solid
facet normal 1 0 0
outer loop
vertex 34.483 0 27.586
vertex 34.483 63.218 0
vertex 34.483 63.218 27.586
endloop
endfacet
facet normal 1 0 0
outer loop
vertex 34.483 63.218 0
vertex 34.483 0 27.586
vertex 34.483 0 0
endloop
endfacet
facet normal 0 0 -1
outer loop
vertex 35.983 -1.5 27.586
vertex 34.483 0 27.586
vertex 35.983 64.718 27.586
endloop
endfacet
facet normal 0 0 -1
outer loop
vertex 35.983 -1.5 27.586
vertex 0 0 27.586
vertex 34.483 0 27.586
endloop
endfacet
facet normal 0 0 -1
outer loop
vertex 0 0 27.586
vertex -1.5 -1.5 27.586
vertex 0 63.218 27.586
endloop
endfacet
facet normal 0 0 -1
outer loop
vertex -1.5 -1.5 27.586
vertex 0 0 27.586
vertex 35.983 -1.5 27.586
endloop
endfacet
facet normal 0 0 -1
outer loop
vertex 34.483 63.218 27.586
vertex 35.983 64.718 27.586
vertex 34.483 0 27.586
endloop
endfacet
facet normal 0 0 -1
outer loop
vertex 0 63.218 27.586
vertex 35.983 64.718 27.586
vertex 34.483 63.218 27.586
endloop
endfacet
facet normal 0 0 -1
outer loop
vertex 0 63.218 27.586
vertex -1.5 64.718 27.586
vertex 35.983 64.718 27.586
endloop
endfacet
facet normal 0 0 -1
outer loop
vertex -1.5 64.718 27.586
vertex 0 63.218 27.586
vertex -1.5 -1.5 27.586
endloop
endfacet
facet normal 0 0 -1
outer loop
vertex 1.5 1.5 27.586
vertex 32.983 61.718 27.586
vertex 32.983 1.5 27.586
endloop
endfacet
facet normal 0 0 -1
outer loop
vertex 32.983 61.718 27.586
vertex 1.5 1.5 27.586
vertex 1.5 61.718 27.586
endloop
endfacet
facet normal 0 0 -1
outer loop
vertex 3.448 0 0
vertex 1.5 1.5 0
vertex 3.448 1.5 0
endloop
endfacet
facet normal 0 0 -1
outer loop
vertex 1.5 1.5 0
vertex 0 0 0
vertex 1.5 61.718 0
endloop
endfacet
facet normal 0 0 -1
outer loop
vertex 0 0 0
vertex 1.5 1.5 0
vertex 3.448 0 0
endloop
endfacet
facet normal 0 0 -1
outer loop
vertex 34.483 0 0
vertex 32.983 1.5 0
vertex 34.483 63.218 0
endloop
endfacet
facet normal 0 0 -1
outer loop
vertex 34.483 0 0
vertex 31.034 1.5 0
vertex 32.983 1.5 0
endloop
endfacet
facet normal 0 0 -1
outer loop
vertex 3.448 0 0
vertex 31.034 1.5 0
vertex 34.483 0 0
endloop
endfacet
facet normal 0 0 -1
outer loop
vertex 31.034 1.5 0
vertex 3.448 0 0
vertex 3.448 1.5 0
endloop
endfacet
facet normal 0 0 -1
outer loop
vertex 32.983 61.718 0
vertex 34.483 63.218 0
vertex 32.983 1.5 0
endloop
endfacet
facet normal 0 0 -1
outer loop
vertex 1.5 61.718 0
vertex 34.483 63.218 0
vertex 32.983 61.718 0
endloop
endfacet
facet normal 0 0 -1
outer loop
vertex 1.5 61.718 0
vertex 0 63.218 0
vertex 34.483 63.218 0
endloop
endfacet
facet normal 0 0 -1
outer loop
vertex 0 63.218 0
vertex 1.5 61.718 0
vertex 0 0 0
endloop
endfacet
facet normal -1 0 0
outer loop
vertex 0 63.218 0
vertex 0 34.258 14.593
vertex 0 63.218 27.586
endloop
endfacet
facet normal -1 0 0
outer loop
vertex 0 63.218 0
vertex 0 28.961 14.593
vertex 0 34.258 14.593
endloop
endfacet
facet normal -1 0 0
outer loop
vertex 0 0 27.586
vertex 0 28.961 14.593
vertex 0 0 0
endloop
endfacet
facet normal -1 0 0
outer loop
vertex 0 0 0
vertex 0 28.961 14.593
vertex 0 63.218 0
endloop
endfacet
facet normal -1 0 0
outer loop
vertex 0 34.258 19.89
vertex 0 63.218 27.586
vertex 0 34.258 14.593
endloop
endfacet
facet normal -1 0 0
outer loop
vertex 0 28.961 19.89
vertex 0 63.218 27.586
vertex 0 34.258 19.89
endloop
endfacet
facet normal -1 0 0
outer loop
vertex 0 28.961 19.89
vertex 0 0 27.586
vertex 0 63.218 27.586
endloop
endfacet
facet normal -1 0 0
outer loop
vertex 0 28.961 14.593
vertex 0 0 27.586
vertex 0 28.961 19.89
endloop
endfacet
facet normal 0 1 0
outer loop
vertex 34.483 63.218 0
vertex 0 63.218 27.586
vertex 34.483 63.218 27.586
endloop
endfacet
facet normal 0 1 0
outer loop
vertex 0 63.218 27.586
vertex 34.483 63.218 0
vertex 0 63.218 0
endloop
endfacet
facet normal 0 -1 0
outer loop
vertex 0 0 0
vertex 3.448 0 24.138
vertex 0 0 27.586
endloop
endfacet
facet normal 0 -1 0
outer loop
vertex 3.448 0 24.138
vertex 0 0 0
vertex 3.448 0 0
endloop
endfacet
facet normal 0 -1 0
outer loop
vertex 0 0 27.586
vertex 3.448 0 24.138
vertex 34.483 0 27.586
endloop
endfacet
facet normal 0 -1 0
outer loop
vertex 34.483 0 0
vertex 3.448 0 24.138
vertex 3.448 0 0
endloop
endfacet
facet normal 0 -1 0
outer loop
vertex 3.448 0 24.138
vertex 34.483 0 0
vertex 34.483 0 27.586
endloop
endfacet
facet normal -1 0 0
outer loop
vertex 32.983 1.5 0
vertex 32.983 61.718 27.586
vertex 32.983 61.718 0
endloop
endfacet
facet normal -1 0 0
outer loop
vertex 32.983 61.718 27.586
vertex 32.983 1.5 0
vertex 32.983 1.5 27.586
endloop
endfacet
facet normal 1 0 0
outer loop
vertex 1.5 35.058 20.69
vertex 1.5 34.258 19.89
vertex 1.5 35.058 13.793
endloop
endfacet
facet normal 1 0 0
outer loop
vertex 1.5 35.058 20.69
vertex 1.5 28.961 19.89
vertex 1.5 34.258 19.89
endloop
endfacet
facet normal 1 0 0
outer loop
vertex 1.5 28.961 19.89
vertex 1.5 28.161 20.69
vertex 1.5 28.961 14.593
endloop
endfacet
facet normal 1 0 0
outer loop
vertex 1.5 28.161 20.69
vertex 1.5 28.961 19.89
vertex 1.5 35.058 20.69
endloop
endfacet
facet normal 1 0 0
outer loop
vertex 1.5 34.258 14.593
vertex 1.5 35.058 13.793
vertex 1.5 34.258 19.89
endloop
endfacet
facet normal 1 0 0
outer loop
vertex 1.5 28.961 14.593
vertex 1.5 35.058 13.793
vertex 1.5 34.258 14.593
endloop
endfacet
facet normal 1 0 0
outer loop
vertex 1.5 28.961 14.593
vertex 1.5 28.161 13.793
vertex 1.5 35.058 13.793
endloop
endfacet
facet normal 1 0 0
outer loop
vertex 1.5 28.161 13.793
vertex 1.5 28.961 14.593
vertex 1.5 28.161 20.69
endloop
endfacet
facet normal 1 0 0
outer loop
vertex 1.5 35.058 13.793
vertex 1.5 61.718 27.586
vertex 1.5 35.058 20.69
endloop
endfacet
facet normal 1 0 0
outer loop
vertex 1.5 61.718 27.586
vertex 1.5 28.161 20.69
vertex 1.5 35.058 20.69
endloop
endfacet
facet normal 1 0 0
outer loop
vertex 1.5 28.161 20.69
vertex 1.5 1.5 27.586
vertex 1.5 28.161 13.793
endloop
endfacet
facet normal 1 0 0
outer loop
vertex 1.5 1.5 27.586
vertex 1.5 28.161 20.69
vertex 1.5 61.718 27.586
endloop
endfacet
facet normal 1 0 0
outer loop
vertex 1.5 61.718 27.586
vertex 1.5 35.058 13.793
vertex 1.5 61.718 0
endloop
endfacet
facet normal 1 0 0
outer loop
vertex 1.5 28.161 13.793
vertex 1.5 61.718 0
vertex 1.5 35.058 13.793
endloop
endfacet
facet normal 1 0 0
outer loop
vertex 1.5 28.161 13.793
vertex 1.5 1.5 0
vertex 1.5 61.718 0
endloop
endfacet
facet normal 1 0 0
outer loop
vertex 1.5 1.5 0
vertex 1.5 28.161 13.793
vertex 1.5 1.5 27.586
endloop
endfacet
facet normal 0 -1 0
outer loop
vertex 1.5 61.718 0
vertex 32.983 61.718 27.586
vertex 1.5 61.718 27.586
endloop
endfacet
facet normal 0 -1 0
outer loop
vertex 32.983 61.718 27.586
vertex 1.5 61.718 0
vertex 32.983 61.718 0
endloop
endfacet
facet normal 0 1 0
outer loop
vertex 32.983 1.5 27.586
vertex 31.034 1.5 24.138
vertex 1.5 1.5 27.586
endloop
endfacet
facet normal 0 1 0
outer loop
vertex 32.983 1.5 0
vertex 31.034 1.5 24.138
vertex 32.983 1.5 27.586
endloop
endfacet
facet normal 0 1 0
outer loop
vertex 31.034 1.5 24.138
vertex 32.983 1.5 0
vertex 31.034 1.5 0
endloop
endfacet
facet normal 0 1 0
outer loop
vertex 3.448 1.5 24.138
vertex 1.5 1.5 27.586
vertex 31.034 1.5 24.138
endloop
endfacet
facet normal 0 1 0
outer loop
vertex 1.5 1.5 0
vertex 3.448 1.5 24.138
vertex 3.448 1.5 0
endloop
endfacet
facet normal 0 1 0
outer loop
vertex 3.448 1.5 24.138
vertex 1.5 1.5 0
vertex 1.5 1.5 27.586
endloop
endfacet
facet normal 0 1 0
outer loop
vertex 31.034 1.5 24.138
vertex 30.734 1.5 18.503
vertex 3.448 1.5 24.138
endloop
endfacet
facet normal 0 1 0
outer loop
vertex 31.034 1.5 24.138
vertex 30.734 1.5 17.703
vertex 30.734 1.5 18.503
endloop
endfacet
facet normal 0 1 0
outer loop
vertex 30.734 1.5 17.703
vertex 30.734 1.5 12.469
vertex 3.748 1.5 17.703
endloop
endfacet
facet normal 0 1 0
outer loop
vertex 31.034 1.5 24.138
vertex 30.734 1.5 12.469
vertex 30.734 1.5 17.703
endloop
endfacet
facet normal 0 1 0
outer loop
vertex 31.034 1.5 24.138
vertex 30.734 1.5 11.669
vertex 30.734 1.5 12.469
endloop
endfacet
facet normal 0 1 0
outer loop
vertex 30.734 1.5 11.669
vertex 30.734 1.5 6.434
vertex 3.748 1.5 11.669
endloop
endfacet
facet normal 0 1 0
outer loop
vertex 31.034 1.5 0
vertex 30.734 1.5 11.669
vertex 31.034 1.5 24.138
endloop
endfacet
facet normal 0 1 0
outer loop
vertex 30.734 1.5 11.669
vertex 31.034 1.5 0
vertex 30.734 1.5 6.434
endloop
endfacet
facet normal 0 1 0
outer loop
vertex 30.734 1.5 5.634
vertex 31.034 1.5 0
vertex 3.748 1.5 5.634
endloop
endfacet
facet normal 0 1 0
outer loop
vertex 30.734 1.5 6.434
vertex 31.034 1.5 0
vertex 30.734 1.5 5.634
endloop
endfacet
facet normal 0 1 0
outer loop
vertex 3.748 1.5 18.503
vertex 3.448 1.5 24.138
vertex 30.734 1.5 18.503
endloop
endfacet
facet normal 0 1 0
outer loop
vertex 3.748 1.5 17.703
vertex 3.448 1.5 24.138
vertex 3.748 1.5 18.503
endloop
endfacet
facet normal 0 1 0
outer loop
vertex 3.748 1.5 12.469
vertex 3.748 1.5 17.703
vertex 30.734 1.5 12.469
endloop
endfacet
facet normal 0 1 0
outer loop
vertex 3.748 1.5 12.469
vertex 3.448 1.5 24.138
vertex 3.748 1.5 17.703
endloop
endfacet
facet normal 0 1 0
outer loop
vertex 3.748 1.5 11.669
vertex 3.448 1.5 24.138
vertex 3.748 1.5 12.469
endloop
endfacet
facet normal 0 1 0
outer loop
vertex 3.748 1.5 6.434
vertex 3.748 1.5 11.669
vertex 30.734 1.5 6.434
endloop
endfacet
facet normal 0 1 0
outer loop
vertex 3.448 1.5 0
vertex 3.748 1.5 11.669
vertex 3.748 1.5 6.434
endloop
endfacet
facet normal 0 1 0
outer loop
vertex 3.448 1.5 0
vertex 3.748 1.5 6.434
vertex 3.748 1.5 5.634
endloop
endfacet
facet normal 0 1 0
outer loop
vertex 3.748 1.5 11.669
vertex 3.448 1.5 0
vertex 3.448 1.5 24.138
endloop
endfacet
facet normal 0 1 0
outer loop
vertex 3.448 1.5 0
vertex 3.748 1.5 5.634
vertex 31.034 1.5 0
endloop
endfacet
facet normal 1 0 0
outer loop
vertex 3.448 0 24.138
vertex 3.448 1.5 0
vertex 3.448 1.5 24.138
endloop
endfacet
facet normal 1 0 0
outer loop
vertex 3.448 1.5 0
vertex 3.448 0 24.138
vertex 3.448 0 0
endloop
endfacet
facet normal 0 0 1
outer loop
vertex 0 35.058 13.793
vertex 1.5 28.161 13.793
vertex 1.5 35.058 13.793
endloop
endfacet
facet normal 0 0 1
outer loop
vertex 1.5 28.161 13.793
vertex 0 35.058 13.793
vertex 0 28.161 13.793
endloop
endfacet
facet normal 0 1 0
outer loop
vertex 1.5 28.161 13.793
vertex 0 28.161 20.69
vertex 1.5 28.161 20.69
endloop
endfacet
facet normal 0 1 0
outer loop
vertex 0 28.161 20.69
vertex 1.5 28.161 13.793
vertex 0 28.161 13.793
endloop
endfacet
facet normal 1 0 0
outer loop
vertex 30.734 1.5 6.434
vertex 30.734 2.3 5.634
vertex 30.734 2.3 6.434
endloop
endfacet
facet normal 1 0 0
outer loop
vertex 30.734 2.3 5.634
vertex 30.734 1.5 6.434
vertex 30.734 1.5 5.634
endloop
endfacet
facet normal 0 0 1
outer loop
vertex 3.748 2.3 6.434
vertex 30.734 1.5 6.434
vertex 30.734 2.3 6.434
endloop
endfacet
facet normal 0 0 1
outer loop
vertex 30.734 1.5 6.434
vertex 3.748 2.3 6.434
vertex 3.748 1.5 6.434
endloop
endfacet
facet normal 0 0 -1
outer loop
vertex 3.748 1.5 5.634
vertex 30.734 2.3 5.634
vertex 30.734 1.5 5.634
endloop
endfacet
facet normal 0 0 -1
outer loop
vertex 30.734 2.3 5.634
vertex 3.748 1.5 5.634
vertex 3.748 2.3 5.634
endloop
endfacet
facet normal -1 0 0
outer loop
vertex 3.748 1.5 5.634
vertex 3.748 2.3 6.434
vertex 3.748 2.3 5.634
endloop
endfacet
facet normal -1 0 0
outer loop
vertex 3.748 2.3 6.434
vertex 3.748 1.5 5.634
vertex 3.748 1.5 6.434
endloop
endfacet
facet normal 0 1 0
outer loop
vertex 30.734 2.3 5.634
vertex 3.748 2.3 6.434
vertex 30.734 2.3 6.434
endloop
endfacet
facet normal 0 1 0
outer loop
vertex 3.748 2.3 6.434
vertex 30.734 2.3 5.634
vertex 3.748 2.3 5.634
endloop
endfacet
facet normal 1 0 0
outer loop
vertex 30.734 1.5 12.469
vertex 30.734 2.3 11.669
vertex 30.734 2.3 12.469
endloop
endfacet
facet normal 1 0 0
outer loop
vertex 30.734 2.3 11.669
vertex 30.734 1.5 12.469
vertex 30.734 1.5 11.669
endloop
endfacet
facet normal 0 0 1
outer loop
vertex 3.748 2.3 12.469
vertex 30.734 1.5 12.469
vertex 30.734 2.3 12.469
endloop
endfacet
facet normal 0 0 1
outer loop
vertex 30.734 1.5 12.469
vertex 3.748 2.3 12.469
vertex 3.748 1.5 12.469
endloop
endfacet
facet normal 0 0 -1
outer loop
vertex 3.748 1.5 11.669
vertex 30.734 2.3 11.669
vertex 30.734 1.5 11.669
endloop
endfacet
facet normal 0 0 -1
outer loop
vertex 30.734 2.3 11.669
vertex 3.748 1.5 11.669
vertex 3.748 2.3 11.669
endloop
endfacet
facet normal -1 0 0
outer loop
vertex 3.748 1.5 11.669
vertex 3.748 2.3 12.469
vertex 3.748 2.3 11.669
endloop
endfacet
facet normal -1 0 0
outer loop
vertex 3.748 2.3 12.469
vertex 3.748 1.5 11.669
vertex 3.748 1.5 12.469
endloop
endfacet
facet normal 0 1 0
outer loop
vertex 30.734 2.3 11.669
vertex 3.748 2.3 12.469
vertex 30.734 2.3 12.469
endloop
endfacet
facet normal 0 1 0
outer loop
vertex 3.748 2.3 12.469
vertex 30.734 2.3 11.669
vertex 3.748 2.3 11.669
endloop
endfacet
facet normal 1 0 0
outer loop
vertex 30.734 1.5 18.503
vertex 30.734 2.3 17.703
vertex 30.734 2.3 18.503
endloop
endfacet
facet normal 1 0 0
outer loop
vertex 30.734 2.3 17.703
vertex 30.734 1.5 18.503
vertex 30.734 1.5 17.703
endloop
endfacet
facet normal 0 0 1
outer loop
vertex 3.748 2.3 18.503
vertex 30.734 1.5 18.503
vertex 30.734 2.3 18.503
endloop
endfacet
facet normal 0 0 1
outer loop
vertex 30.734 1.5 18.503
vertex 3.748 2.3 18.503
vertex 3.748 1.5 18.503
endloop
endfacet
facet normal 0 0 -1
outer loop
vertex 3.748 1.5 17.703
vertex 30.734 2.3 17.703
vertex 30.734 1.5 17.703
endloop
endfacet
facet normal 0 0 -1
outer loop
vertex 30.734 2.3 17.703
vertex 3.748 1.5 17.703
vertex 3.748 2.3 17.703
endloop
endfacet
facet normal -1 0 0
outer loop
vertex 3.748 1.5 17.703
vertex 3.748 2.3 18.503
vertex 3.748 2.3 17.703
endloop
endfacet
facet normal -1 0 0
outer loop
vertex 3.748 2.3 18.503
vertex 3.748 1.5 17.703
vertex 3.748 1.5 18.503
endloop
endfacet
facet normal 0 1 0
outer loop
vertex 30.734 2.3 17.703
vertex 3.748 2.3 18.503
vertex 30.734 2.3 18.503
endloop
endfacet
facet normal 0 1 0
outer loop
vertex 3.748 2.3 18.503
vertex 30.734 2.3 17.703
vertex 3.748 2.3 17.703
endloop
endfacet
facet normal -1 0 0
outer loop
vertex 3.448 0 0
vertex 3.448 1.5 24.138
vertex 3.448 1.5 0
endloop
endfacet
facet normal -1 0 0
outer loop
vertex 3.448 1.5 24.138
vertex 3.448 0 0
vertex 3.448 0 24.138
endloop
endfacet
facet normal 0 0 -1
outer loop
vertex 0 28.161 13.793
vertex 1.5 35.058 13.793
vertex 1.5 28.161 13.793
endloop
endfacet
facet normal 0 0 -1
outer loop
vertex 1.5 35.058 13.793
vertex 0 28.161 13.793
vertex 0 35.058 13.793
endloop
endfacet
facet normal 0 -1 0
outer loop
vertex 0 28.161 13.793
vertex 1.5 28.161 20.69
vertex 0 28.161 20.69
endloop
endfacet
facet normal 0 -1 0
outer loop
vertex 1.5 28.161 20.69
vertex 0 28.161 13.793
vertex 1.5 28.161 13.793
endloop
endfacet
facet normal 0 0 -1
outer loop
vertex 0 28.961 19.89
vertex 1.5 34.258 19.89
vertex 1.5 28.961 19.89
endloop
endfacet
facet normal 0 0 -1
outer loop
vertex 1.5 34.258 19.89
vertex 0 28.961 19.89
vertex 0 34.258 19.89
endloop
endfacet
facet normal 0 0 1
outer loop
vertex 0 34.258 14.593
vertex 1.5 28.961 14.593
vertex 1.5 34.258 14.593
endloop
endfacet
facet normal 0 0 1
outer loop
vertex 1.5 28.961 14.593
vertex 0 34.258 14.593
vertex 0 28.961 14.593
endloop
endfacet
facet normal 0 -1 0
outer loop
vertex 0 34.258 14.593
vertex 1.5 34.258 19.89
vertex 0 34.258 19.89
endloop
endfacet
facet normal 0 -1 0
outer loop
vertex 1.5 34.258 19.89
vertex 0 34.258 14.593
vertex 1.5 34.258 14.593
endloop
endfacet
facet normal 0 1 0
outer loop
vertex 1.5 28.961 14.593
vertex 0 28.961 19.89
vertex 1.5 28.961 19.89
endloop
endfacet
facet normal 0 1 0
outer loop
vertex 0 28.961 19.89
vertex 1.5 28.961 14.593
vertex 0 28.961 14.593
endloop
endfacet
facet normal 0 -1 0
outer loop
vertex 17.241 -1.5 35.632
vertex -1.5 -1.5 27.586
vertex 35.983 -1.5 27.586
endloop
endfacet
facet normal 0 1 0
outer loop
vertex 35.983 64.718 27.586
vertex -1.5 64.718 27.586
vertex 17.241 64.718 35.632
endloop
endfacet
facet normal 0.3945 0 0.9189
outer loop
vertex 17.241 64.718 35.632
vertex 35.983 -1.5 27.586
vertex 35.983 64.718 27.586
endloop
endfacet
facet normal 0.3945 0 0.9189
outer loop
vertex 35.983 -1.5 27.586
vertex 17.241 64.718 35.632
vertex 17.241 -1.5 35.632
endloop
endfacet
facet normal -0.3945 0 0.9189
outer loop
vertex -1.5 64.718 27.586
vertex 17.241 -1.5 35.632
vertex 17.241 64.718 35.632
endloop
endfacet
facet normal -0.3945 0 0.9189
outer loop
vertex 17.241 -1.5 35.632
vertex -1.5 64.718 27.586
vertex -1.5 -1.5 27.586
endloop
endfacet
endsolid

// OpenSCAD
/*
 * PROMPT: Single car standalone garage in H0 scale (1:87). Gabled roof with slight
 * overhang, sectional garage door on front facade, one small window on left side wall.
 * FDM printable hollow shell, open bottom, exterior surface detail only.
 */

$fn = 32;

S = 1 / 87;  // H0 scale factor

// Building dimensions (real-world mm → H0 mm)
wall_t    = 1.5;          // wall thickness, fixed for printability

bld_w     = 3000 * S;    // exterior width   34.5 mm
bld_d     = 5500 * S;    // exterior depth   63.2 mm
bld_h     = 2400 * S;    // eave height      27.6 mm

roof_rise = 700  * S;    // gable peak rise   8.0 mm
roof_oh   = 1.5;         // roof overhang (H0 mm)

gd_w      = 2400 * S;    // garage door width    27.6 mm
gd_h      = 2100 * S;    // garage door height   24.1 mm

win_w     = 600  * S;    // side window width     6.9 mm
win_h     = 600  * S;    // side window height    6.9 mm
win_sill  = 1200 * S;    // sill height          13.8 mm

// --- modules ---

module shell() {
    difference() {
        cube([bld_w, bld_d, bld_h]);
        // hollow interior, open bottom
        translate([wall_t, wall_t, 0])
            cube([bld_w - 2*wall_t, bld_d - 2*wall_t, bld_h]);
        // garage door opening — front face (y = 0), horizontally centred
        translate([(bld_w - gd_w) / 2, -1, 0])
            cube([gd_w, wall_t + 2, gd_h]);
        // side window opening — left face (x = 0), centred in depth
        translate([-1, (bld_d - win_w) / 2, win_sill])
            cube([wall_t + 2, win_w, win_h]);
    }
}

module garage_door() {
    // Sectional door: flat fill + 3 raised horizontal rails dividing 4 panels
    sections  = 4;
    sec_h     = gd_h / sections;  // height of each panel section
    rail_h    = 0.8;              // rail height (meets min feature size)
    rail_proud = 0.8;             // how far rails protrude from door surface

    translate([(bld_w - gd_w) / 2, 0, 0]) {
        // flat door panel — fills the opening
        cube([gd_w, wall_t, gd_h]);
        // raised rails at each section boundary
        for (i = [1 : sections - 1]) {
            translate([0.3, wall_t, i * sec_h - rail_h / 2])
                cube([gd_w - 0.6, rail_proud, rail_h]);
        }
    }
}

module left_window() {
    // Window frame on left wall (x = 0 face), centred in depth
    frame_t = 0.8;  // frame border width (meets min feature size)
    translate([0, (bld_d - win_w) / 2, win_sill]) {
        difference() {
            cube([wall_t, win_w, win_h]);
            translate([-1, frame_t, frame_t])
                cube([wall_t + 2, win_w - 2*frame_t, win_h - 2*frame_t]);
        }
    }
}

module roof() {
    rw = bld_w + 2 * roof_oh;  // total roof width
    rd = bld_d + 2 * roof_oh;  // total roof depth

    translate([-roof_oh, -roof_oh, bld_h])
    polyhedron(
        points = [
            [0,    0,  0],          // 0 front-left eave
            [rw,   0,  0],          // 1 front-right eave
            [rw,   rd, 0],          // 2 back-right eave
            [0,    rd, 0],          // 3 back-left eave
            [rw/2, 0,  roof_rise],  // 4 front ridge point
            [rw/2, rd, roof_rise],  // 5 back ridge point
        ],
        faces = [
            [0, 3, 2, 1],  // bottom (eave plane)
            [0, 1, 4],     // front gable
            [3, 5, 2],     // back gable
            [1, 2, 5, 4],  // right slope
            [0, 4, 5, 3],  // left slope
        ]
    );
}

// --- assembly ---
union() {
    shell();
    garage_door();
    left_window();
    roof();
}
